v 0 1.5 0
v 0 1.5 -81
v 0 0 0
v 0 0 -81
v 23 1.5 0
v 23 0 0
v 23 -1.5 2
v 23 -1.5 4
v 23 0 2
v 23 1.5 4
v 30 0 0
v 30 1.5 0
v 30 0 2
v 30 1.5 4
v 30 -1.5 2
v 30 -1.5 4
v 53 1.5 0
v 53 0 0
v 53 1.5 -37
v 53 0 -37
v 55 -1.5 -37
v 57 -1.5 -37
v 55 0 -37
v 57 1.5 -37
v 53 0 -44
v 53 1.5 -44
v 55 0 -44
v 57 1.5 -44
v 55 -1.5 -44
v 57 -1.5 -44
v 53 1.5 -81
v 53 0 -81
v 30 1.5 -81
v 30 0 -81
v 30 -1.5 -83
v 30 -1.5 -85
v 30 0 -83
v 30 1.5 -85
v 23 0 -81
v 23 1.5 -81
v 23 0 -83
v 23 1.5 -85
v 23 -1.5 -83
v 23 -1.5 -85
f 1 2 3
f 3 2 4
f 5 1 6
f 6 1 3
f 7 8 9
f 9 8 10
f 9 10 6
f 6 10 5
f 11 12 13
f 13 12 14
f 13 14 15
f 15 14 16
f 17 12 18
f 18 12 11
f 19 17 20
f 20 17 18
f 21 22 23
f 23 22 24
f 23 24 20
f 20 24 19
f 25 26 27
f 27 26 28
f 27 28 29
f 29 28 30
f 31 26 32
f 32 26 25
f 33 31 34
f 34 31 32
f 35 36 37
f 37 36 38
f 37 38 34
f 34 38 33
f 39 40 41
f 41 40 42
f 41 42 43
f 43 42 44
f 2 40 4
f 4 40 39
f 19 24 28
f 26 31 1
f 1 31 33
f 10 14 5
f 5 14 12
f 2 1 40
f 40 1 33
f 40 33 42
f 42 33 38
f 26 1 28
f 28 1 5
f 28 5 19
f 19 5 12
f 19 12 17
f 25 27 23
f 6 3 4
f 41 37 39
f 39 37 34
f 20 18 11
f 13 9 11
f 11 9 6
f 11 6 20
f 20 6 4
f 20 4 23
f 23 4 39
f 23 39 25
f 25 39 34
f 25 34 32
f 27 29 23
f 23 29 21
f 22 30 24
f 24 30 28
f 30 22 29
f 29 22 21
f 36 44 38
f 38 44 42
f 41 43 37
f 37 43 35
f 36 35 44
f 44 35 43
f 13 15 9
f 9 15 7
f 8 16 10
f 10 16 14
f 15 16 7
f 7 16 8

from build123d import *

# Parameters (mm, degrees)
BOSS_EXTRUDE1_DEPTH = 1.5
SKETCH2_W           = 7
SKETCH2_H           = 2
SKETCH2_W_2         = 2
SKETCH2_H_2         = 7
BOSS_EXTRUDE2_DEPTH = 3


with BuildPart() as part:
    # Sketch1 → Boss-Extrude1 (new body)
    with BuildSketch(Plane(origin=(0, 0, 0), x_dir=(1, 0, 0), z_dir=(0, 1, 0))):
        Polygon((30, 81), (53, 81), (53, 44), (55, 44), (55, 37), (53, 37), (53, 0), (30, 0), (30, -2), (23, -2), (23, 0), (0, 0), (0, 81), (23, 81), (23, 83), (30, 83), align=None)
    extrude(amount=BOSS_EXTRUDE1_DEPTH)

    # Sketch2 → Boss-Extrude2 (add)
    with BuildSketch(Plane(origin=(0, 1.5, 0), x_dir=(1, 0, 0), z_dir=(0, 1, 0))):
        with Locations((26.5, 84)):
            Rectangle(SKETCH2_W, SKETCH2_H)
        with Locations((56, 40.5)):
            Rectangle(SKETCH2_W_2, SKETCH2_H_2)
        with Locations((26.5, -3)):
            Rectangle(SKETCH2_W, SKETCH2_H)
    extrude(amount=-BOSS_EXTRUDE2_DEPTH)


solid = part.part
